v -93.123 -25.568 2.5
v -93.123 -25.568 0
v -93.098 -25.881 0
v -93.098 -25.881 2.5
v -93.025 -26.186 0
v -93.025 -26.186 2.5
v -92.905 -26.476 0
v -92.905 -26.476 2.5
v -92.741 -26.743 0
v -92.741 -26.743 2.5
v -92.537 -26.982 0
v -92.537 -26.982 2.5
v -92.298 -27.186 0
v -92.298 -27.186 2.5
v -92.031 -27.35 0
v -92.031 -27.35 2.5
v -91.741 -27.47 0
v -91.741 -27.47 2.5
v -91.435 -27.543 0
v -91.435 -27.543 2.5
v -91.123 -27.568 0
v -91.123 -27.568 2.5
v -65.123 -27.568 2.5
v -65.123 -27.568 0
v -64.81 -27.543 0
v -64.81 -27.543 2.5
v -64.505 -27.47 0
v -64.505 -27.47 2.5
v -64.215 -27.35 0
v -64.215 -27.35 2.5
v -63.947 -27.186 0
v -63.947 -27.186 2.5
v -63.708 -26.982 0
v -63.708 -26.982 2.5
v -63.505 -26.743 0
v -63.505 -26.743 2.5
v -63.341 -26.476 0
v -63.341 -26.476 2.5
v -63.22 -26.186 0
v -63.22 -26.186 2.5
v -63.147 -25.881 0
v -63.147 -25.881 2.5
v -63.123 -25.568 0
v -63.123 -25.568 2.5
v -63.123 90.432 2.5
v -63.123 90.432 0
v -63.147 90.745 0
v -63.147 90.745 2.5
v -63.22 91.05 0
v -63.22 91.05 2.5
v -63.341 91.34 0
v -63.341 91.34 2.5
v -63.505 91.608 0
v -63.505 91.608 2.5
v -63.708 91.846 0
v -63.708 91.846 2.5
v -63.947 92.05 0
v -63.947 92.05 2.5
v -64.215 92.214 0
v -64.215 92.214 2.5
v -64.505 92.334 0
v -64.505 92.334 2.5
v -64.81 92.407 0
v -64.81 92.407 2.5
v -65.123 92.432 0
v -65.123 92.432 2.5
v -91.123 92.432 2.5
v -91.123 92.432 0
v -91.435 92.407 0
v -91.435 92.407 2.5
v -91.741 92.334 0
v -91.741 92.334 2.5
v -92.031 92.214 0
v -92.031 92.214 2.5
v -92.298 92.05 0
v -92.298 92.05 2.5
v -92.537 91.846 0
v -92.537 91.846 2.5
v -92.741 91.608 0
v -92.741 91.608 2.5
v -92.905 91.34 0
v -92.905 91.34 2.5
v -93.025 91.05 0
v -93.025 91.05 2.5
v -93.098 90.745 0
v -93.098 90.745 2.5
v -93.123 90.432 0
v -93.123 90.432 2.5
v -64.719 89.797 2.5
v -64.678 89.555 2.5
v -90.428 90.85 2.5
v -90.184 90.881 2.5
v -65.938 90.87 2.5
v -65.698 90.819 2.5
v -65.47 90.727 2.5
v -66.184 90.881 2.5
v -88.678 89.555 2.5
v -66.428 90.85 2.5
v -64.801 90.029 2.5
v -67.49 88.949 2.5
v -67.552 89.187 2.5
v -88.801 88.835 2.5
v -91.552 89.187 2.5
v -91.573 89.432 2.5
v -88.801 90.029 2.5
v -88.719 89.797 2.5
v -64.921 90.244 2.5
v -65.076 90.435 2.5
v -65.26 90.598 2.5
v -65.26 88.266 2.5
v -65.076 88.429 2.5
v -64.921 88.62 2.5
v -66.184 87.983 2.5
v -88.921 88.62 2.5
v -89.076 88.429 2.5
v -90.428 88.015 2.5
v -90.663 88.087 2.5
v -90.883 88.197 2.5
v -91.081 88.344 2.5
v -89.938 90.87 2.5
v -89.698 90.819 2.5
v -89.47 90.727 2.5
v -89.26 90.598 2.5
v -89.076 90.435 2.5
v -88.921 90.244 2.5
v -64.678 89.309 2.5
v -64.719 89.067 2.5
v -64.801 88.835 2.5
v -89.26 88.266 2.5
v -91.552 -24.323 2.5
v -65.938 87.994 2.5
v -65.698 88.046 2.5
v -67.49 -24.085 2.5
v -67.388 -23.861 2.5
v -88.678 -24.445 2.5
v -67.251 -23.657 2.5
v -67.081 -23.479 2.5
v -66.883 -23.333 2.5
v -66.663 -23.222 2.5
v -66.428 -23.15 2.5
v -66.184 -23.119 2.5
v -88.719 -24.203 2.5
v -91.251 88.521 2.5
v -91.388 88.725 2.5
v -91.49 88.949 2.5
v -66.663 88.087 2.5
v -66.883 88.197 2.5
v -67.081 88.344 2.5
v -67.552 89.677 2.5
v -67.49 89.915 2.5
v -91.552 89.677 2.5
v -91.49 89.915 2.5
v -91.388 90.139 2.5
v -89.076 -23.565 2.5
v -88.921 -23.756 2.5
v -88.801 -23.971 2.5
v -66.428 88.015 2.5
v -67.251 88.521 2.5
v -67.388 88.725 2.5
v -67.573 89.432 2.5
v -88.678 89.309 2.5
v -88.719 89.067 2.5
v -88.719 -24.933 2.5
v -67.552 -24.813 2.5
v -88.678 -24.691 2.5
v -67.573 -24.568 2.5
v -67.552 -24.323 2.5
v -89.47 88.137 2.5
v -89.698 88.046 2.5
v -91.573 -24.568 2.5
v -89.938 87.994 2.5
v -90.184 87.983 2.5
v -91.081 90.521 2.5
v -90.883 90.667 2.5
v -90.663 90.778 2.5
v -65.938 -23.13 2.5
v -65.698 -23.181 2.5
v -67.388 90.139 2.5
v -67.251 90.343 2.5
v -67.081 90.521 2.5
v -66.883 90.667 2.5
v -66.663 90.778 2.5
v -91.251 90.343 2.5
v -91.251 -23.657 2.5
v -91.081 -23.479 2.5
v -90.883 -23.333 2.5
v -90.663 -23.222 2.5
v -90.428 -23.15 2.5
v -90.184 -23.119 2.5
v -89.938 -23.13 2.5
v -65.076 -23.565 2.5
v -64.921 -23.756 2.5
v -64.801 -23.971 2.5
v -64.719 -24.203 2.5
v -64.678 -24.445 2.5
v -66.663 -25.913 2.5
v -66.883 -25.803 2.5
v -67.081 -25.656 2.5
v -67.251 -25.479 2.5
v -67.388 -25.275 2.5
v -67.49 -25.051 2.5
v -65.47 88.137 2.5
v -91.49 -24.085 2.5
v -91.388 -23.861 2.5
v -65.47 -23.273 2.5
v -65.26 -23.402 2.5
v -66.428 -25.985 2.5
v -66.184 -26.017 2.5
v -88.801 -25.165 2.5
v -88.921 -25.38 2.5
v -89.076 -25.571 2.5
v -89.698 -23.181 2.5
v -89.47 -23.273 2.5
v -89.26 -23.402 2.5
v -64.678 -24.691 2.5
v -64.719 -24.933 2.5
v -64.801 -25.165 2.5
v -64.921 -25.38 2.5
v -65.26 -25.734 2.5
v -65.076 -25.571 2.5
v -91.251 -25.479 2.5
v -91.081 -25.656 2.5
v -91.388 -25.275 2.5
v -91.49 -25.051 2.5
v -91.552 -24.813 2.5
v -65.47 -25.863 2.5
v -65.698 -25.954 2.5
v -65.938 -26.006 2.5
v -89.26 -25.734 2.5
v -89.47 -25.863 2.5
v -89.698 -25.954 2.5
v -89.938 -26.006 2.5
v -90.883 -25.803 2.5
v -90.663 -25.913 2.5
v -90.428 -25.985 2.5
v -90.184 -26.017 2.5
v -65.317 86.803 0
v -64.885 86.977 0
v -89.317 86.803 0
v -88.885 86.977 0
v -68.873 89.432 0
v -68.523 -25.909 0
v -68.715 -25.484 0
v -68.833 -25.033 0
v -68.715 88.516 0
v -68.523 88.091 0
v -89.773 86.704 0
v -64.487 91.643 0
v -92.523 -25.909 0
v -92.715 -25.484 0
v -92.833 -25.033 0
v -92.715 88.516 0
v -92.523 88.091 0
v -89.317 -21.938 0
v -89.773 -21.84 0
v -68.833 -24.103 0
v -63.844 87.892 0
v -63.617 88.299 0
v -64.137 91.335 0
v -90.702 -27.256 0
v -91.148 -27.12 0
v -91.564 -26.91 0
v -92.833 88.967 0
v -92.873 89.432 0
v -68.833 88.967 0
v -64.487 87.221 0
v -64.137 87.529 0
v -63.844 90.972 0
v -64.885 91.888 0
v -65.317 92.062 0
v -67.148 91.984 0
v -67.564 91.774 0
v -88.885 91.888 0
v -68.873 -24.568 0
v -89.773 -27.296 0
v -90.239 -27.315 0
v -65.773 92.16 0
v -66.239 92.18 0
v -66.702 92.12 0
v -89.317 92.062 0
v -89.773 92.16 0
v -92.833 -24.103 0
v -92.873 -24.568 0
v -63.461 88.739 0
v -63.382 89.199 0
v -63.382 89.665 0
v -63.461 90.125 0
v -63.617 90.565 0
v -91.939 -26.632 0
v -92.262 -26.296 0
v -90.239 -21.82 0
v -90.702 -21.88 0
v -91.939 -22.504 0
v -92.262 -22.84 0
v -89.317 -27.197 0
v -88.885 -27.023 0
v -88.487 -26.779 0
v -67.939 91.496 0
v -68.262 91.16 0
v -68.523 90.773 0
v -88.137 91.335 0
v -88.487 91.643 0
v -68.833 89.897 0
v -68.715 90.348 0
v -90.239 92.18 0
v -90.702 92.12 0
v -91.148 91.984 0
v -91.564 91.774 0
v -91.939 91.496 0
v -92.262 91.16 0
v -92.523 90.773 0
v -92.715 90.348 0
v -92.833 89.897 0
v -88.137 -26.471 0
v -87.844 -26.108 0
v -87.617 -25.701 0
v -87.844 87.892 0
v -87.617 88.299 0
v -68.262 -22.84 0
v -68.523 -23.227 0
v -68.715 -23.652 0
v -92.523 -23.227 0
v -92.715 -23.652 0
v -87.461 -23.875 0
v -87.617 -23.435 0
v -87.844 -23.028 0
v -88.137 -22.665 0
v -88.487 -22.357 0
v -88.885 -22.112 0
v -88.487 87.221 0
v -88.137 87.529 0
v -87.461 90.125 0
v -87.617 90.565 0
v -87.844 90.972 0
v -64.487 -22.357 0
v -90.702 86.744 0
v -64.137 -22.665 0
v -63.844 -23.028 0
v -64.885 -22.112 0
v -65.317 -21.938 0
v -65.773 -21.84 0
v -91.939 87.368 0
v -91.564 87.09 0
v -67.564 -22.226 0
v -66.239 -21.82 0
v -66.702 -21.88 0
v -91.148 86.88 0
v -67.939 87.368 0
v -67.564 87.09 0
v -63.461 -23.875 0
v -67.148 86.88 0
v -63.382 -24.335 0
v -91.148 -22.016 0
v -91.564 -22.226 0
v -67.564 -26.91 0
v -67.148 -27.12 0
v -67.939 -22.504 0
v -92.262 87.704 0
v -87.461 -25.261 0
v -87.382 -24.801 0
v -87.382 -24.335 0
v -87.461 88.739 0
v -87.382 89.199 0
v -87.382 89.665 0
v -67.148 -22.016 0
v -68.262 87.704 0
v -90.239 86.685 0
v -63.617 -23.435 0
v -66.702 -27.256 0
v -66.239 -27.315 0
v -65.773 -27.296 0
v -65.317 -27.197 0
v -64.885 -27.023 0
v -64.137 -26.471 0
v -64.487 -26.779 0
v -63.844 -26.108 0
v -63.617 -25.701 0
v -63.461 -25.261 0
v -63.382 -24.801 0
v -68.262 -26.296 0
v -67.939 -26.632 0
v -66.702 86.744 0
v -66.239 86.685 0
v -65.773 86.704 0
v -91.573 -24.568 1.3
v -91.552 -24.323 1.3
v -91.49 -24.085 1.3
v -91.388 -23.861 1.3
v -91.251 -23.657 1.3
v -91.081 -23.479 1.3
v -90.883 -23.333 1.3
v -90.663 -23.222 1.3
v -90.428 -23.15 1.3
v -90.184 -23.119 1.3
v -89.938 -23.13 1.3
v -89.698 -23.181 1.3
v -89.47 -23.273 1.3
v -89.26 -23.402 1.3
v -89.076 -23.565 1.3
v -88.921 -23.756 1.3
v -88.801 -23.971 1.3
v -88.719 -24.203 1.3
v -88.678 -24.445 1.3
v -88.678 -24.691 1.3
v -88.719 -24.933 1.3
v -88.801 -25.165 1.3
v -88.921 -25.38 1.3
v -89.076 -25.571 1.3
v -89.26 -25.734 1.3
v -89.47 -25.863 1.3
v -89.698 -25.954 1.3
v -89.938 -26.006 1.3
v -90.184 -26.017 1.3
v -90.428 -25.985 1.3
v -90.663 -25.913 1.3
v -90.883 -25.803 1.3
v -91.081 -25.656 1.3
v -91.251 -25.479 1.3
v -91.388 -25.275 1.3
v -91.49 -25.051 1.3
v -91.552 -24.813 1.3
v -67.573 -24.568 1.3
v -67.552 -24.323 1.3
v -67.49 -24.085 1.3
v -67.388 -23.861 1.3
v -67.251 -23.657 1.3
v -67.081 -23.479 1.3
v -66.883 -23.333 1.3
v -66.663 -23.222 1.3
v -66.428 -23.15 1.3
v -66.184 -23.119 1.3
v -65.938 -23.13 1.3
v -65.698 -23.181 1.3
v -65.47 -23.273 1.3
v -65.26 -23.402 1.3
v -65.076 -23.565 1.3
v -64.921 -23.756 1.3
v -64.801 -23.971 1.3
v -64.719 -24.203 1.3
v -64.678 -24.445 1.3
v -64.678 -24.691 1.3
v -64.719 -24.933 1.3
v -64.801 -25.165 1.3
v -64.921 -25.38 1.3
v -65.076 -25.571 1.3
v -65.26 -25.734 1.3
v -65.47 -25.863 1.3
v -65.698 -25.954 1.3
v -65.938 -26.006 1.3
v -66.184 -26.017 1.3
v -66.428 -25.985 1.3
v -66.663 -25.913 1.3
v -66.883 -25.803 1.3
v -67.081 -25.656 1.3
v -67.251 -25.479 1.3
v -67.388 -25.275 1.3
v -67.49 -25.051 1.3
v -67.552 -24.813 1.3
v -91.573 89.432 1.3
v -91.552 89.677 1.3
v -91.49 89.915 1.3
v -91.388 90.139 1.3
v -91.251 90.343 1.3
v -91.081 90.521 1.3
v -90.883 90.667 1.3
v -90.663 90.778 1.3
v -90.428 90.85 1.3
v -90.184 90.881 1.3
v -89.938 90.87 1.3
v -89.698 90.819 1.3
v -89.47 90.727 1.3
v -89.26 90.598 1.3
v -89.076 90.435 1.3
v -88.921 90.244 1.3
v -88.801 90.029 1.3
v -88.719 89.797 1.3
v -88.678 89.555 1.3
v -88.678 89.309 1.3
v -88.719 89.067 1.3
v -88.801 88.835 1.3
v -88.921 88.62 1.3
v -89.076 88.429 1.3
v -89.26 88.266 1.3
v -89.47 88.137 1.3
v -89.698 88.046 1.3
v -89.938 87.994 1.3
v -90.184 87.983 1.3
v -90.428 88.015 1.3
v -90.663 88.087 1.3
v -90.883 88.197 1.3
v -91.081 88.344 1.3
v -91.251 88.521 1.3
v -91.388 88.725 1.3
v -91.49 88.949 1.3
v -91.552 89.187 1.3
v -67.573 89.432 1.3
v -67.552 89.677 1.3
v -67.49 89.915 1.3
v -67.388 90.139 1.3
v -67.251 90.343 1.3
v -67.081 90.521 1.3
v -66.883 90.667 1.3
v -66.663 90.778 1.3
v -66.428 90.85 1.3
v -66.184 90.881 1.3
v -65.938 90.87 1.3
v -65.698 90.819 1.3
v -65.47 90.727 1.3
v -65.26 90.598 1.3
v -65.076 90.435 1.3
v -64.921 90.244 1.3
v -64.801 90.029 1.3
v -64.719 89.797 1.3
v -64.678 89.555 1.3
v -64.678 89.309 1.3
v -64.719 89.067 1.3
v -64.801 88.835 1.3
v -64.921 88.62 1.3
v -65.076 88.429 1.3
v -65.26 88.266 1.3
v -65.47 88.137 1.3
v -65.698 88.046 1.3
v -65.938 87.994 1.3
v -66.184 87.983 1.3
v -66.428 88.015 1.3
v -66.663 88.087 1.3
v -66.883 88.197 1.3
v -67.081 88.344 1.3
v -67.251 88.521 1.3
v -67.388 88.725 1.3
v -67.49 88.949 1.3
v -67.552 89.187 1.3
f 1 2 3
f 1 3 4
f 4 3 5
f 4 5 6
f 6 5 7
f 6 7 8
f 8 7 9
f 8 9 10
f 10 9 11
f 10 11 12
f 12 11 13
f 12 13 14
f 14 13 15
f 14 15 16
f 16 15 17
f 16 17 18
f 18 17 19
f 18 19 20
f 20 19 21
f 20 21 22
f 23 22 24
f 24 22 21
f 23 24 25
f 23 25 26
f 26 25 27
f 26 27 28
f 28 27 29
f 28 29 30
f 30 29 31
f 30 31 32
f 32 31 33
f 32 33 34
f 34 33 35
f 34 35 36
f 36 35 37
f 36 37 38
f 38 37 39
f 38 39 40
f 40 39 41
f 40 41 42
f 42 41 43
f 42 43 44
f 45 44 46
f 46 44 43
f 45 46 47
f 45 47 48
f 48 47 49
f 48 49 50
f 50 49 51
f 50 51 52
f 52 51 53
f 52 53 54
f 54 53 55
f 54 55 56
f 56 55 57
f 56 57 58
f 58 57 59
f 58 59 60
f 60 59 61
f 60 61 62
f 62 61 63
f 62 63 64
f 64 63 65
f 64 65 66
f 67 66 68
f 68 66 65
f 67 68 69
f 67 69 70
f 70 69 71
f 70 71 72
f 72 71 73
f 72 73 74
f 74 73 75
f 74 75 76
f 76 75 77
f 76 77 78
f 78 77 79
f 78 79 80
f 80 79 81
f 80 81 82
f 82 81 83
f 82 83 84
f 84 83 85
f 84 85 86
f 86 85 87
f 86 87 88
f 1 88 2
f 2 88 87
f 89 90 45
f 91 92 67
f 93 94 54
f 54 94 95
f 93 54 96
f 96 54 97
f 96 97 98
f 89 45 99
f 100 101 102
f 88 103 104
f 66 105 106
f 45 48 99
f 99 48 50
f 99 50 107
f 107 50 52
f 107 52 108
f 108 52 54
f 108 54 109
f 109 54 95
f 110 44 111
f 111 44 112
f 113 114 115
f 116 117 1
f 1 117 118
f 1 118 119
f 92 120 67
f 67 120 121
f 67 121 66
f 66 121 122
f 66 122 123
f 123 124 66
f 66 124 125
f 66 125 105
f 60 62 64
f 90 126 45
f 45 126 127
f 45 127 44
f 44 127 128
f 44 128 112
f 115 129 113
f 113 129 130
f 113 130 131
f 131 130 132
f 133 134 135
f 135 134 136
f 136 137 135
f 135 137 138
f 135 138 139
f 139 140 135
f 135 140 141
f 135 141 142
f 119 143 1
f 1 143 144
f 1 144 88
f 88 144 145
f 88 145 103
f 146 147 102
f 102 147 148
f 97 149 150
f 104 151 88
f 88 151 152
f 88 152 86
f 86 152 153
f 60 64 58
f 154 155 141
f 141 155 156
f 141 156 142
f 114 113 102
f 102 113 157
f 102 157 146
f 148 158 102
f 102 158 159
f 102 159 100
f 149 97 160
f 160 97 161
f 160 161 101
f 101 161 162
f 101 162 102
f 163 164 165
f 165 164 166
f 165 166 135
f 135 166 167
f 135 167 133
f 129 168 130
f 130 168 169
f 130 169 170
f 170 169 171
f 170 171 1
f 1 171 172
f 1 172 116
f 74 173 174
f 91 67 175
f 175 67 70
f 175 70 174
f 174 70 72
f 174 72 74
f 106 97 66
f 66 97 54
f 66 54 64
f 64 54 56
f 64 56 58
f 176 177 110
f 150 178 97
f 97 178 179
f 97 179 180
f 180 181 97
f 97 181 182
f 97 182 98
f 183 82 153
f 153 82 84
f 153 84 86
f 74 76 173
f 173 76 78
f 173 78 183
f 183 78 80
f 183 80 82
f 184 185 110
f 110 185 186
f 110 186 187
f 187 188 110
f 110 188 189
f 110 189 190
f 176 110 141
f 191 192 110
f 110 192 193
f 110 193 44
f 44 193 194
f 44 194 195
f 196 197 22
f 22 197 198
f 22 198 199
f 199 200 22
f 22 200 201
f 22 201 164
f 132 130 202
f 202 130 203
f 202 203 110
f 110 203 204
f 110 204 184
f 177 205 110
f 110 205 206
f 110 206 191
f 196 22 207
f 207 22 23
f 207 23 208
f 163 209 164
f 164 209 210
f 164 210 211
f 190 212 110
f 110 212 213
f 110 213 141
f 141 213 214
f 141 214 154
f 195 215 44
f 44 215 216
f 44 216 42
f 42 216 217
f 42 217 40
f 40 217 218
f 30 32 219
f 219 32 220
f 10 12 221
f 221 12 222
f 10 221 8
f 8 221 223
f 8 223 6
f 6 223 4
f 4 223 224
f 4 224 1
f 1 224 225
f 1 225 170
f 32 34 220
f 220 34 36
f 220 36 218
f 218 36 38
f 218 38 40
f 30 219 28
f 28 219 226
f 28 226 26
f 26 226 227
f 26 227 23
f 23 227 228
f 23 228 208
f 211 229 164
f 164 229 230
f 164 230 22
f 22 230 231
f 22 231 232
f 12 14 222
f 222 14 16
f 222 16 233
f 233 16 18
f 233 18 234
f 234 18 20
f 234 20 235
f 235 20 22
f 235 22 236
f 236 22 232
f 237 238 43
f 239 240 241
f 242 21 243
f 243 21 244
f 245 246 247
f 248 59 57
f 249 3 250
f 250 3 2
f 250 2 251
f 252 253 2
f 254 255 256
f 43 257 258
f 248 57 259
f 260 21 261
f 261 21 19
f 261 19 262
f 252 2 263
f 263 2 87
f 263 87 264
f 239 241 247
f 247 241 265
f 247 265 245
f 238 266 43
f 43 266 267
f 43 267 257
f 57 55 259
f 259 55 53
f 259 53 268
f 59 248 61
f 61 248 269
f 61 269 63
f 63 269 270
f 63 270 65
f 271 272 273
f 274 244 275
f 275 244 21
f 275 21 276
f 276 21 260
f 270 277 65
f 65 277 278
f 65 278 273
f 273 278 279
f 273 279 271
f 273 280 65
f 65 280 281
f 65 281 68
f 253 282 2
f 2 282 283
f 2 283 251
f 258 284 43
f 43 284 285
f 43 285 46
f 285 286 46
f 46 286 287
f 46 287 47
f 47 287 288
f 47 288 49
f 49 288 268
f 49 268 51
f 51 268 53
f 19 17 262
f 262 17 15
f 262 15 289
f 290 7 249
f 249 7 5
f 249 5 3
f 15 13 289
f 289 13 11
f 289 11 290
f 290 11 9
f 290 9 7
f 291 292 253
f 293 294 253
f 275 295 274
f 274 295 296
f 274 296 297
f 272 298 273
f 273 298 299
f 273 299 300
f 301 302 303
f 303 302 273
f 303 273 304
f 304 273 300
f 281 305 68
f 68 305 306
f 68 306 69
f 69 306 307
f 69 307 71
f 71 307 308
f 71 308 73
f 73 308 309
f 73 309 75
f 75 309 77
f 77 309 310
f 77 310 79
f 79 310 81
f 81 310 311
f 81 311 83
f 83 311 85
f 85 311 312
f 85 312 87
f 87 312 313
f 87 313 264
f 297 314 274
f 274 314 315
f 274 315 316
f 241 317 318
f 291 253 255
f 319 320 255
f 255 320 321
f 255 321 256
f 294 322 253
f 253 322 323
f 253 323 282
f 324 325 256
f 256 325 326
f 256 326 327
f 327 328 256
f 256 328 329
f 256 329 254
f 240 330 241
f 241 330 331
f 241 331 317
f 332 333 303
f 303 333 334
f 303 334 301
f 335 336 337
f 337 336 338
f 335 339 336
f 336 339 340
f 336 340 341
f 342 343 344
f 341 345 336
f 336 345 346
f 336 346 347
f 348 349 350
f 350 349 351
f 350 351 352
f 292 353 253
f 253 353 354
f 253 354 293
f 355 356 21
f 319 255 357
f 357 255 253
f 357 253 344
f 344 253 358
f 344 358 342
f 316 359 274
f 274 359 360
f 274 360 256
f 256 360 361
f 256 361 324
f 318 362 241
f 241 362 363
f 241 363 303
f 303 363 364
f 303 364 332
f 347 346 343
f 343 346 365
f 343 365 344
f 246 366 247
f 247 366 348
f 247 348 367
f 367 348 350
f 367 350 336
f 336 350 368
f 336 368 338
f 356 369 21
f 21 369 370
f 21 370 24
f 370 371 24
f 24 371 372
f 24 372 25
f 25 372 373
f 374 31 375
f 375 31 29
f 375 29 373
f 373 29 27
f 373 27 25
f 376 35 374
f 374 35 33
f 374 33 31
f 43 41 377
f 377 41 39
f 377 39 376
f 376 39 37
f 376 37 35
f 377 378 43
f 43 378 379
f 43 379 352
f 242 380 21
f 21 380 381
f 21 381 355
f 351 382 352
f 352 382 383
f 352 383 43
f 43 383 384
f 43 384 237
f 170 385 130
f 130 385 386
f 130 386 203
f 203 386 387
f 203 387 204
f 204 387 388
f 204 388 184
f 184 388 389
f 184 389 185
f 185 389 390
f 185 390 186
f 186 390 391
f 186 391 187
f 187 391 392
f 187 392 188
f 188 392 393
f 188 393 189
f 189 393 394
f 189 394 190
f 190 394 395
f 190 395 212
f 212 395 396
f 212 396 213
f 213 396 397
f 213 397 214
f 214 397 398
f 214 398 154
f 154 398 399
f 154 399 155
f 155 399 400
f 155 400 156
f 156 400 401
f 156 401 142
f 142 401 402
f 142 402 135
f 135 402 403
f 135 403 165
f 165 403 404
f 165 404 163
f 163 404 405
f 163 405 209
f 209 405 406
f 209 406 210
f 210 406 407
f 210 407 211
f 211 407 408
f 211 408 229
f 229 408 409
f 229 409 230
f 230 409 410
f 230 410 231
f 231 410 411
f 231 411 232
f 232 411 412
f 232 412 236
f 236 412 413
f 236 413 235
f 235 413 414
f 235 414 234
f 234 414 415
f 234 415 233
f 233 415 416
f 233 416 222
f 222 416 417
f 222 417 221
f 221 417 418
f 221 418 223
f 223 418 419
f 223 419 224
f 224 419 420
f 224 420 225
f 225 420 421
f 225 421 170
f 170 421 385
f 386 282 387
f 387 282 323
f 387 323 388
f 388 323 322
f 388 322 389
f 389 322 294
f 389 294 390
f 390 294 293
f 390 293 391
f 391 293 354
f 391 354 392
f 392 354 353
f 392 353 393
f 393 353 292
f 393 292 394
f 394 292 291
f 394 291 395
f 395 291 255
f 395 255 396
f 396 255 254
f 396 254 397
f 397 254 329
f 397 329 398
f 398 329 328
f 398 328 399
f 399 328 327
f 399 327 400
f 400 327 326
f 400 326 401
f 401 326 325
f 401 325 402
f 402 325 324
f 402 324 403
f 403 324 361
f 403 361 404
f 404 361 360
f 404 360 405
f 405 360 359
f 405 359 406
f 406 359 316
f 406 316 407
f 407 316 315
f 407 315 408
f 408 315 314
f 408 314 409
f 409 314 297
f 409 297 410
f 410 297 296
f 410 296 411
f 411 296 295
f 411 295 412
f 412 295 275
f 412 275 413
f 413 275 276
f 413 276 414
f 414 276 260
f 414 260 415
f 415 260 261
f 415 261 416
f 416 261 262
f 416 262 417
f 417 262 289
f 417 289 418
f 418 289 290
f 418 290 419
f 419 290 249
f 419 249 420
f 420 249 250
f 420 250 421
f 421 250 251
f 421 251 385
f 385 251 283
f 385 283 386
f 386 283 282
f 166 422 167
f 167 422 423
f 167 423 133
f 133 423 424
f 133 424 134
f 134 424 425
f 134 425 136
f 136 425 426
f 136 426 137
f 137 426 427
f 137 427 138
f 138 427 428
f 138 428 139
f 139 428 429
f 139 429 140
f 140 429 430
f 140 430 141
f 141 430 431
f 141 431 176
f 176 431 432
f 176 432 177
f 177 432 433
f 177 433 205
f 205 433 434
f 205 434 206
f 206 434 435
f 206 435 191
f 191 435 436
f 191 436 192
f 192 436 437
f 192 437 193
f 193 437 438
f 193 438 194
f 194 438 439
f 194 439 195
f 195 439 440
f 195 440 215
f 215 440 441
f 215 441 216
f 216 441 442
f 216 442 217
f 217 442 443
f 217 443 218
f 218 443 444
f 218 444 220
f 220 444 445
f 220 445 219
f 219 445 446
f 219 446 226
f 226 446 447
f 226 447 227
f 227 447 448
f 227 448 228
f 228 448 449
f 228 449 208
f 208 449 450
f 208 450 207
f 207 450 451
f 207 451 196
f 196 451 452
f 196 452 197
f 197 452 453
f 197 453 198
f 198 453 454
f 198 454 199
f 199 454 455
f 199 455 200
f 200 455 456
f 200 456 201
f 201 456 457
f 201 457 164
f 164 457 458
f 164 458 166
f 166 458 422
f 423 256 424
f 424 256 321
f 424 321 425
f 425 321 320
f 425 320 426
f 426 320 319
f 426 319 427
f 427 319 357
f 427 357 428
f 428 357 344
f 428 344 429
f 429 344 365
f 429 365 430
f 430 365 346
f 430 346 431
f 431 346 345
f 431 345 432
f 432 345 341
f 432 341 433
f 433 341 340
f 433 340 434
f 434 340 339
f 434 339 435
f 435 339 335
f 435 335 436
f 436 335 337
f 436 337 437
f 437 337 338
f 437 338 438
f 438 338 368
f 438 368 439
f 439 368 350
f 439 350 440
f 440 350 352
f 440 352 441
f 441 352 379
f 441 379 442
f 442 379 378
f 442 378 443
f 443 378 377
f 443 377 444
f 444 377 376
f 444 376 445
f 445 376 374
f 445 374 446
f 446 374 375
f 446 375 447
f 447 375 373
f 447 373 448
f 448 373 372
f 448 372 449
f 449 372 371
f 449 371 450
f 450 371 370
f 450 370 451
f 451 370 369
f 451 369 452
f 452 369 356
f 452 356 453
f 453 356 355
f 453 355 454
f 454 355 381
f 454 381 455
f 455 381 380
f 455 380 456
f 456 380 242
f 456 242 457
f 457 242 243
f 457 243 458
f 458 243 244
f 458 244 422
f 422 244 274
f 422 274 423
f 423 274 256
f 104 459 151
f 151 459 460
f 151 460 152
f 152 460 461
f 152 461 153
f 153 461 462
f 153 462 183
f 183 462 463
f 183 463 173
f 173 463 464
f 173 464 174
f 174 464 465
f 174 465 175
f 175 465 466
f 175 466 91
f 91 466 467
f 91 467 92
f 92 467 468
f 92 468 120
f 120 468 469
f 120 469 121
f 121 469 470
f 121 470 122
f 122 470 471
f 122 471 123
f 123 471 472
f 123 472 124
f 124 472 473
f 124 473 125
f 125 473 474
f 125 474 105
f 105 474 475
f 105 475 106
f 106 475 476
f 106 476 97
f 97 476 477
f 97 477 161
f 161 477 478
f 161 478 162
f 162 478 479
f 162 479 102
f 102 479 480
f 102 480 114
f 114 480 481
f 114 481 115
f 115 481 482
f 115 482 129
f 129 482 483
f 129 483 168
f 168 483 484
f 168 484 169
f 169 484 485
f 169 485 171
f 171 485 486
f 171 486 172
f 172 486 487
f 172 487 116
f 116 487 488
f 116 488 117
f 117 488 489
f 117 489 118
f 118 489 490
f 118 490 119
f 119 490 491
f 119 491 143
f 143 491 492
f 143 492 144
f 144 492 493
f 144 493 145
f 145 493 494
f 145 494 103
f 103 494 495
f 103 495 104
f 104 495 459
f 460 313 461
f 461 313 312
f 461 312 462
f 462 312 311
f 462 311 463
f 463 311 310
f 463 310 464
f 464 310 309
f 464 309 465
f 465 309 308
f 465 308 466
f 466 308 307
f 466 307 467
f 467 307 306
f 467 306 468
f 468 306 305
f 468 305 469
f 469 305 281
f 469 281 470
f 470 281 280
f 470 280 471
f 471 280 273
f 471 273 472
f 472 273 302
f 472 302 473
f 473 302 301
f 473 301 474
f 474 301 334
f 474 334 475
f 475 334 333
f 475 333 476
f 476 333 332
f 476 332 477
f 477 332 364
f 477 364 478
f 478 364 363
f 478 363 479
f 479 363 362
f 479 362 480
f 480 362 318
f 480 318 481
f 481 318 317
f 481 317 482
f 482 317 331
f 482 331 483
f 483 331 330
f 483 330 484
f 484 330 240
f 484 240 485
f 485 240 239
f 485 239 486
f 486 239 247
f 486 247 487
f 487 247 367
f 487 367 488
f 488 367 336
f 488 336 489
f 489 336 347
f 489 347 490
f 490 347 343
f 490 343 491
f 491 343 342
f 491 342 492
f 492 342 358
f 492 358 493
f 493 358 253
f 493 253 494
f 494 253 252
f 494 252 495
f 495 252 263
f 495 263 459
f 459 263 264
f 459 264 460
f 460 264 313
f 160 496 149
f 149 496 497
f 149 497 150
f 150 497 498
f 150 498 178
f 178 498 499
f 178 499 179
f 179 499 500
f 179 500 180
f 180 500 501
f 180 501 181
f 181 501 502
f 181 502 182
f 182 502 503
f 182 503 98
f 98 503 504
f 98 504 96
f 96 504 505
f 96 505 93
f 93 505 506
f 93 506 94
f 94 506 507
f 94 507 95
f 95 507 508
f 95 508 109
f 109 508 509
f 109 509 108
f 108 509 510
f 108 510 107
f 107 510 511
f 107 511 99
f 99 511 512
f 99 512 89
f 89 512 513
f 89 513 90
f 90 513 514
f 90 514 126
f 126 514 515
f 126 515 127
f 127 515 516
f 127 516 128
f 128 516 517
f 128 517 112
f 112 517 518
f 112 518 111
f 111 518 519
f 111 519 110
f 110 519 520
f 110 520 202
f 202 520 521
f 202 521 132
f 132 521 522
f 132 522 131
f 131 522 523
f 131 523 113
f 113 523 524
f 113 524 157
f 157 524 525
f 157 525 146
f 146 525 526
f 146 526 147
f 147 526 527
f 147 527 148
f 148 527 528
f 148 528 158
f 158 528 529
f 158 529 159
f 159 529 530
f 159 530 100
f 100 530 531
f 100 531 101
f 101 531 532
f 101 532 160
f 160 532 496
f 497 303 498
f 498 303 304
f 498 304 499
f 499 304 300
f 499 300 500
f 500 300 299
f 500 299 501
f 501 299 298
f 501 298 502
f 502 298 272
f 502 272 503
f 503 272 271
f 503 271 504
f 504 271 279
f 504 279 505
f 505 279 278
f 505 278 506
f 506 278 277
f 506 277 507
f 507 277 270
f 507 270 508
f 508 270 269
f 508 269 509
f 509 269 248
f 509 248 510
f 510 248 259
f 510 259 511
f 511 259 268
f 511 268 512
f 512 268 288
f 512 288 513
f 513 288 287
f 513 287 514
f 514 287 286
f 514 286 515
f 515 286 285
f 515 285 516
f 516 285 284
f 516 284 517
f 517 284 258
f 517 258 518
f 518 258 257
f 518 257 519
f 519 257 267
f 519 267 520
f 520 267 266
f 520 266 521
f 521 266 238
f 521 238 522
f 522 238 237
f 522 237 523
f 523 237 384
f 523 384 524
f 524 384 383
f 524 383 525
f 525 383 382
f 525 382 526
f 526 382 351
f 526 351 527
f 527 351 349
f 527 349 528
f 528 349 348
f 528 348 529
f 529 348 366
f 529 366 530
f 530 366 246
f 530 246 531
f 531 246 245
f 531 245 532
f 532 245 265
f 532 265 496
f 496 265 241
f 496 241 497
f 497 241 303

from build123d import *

# Parameters (mm, degrees)
BOSS_EXTRUDE1_DEPTH                          = 2.5
CSK_FOR_M2_5_COUNTERSUNK_FLAT_HEAD_S_2_COUNT = 2
CSK_FOR_M2_5_COUNTERSUNK_FLAT_HEAD_S_2_PITCH = 24
CSK_FOR_M2_5_COUNTERSUNK_FLAT_HEAD_S_3_COUNT = 2
CSK_FOR_M2_5_COUNTERSUNK_FLAT_HEAD_S_3_PITCH = 114
CSK_FOR_M2_5_COUNTERSUNK_FLAT_HEAD_S_4_COUNT = 2
CSK_FOR_M2_5_COUNTERSUNK_FLAT_HEAD_S_4_PITCH = 116.498927034


with BuildPart() as part:
    # Sketch1 → Boss-Extrude1 (new body)
    with BuildSketch(Plane.XY):
        with BuildLine():
            Line((-63.122572744, 90.432106023), (-63.122572744, -25.567893977))
            ThreePointArc((-63.122572744, -25.567893977), (-63.708359182, -26.98210754), (-65.122572744, -27.567893977))
            Line((-65.122572744, -27.567893977), (-91.122572744, -27.567893977))
            ThreePointArc((-91.122572744, -27.567893977), (-92.536786306, -26.98210754), (-93.122572744, -25.567893977))
            Line((-93.122572744, -25.567893977), (-93.122572744, 90.432106023))
            ThreePointArc((-93.122572744, 90.432106023), (-92.536786306, 91.846319585), (-91.122572744, 92.432106023))
            Line((-91.122572744, 92.432106023), (-65.122572744, 92.432106023))
            ThreePointArc((-65.122572744, 92.432106023), (-63.708359182, 91.846319585), (-63.122572744, 90.432106023))
        make_face()
    extrude(amount=BOSS_EXTRUDE1_DEPTH)

    # Sketch3 → CSK for M2.5 Countersunk Flat Head Screw2 (revolve, cut)
    with BuildSketch(Plane(origin=(-66.122572744, 89.432106023, 0), x_dir=(0, 1, 0), z_dir=(1, 0, 0))):
        Polygon((0, 0), (0, 2.5), (1.45, 2.5), (1.45, 1.3), (2.75, 0), align=None)
    csk_for_m2_5_countersunk_flat_head_screw = revolve(axis=Axis((-66.122572744, 89.432106023, -6.35), (0, 0, 1)), mode=Mode.SUBTRACT)

    # CSK for M2.5 Countersunk Flat Head S 2: CSK for M2.5 Countersunk Flat Head Screw2 ×2
    with Locations(*[(-i * CSK_FOR_M2_5_COUNTERSUNK_FLAT_HEAD_S_2_PITCH, 0, 0) for i in range(1, CSK_FOR_M2_5_COUNTERSUNK_FLAT_HEAD_S_2_COUNT)]):
        add(csk_for_m2_5_countersunk_flat_head_screw, mode=Mode.SUBTRACT)

    # CSK for M2.5 Countersunk Flat Head S 3: CSK for M2.5 Countersunk Flat Head Screw2 ×2
    with Locations(*[(0, -i * CSK_FOR_M2_5_COUNTERSUNK_FLAT_HEAD_S_3_PITCH, 0) for i in range(1, CSK_FOR_M2_5_COUNTERSUNK_FLAT_HEAD_S_3_COUNT)]):
        add(csk_for_m2_5_countersunk_flat_head_screw, mode=Mode.SUBTRACT)

    # CSK for M2.5 Countersunk Flat Head S 4: CSK for M2.5 Countersunk Flat Head Screw2 ×2
    with Locations(*[Vector(-0.20601048104984201, -0.978549784986749, 0) * (i * CSK_FOR_M2_5_COUNTERSUNK_FLAT_HEAD_S_4_PITCH) for i in range(1, CSK_FOR_M2_5_COUNTERSUNK_FLAT_HEAD_S_4_COUNT)]):
        add(csk_for_m2_5_countersunk_flat_head_screw, mode=Mode.SUBTRACT)


solid = part.part
